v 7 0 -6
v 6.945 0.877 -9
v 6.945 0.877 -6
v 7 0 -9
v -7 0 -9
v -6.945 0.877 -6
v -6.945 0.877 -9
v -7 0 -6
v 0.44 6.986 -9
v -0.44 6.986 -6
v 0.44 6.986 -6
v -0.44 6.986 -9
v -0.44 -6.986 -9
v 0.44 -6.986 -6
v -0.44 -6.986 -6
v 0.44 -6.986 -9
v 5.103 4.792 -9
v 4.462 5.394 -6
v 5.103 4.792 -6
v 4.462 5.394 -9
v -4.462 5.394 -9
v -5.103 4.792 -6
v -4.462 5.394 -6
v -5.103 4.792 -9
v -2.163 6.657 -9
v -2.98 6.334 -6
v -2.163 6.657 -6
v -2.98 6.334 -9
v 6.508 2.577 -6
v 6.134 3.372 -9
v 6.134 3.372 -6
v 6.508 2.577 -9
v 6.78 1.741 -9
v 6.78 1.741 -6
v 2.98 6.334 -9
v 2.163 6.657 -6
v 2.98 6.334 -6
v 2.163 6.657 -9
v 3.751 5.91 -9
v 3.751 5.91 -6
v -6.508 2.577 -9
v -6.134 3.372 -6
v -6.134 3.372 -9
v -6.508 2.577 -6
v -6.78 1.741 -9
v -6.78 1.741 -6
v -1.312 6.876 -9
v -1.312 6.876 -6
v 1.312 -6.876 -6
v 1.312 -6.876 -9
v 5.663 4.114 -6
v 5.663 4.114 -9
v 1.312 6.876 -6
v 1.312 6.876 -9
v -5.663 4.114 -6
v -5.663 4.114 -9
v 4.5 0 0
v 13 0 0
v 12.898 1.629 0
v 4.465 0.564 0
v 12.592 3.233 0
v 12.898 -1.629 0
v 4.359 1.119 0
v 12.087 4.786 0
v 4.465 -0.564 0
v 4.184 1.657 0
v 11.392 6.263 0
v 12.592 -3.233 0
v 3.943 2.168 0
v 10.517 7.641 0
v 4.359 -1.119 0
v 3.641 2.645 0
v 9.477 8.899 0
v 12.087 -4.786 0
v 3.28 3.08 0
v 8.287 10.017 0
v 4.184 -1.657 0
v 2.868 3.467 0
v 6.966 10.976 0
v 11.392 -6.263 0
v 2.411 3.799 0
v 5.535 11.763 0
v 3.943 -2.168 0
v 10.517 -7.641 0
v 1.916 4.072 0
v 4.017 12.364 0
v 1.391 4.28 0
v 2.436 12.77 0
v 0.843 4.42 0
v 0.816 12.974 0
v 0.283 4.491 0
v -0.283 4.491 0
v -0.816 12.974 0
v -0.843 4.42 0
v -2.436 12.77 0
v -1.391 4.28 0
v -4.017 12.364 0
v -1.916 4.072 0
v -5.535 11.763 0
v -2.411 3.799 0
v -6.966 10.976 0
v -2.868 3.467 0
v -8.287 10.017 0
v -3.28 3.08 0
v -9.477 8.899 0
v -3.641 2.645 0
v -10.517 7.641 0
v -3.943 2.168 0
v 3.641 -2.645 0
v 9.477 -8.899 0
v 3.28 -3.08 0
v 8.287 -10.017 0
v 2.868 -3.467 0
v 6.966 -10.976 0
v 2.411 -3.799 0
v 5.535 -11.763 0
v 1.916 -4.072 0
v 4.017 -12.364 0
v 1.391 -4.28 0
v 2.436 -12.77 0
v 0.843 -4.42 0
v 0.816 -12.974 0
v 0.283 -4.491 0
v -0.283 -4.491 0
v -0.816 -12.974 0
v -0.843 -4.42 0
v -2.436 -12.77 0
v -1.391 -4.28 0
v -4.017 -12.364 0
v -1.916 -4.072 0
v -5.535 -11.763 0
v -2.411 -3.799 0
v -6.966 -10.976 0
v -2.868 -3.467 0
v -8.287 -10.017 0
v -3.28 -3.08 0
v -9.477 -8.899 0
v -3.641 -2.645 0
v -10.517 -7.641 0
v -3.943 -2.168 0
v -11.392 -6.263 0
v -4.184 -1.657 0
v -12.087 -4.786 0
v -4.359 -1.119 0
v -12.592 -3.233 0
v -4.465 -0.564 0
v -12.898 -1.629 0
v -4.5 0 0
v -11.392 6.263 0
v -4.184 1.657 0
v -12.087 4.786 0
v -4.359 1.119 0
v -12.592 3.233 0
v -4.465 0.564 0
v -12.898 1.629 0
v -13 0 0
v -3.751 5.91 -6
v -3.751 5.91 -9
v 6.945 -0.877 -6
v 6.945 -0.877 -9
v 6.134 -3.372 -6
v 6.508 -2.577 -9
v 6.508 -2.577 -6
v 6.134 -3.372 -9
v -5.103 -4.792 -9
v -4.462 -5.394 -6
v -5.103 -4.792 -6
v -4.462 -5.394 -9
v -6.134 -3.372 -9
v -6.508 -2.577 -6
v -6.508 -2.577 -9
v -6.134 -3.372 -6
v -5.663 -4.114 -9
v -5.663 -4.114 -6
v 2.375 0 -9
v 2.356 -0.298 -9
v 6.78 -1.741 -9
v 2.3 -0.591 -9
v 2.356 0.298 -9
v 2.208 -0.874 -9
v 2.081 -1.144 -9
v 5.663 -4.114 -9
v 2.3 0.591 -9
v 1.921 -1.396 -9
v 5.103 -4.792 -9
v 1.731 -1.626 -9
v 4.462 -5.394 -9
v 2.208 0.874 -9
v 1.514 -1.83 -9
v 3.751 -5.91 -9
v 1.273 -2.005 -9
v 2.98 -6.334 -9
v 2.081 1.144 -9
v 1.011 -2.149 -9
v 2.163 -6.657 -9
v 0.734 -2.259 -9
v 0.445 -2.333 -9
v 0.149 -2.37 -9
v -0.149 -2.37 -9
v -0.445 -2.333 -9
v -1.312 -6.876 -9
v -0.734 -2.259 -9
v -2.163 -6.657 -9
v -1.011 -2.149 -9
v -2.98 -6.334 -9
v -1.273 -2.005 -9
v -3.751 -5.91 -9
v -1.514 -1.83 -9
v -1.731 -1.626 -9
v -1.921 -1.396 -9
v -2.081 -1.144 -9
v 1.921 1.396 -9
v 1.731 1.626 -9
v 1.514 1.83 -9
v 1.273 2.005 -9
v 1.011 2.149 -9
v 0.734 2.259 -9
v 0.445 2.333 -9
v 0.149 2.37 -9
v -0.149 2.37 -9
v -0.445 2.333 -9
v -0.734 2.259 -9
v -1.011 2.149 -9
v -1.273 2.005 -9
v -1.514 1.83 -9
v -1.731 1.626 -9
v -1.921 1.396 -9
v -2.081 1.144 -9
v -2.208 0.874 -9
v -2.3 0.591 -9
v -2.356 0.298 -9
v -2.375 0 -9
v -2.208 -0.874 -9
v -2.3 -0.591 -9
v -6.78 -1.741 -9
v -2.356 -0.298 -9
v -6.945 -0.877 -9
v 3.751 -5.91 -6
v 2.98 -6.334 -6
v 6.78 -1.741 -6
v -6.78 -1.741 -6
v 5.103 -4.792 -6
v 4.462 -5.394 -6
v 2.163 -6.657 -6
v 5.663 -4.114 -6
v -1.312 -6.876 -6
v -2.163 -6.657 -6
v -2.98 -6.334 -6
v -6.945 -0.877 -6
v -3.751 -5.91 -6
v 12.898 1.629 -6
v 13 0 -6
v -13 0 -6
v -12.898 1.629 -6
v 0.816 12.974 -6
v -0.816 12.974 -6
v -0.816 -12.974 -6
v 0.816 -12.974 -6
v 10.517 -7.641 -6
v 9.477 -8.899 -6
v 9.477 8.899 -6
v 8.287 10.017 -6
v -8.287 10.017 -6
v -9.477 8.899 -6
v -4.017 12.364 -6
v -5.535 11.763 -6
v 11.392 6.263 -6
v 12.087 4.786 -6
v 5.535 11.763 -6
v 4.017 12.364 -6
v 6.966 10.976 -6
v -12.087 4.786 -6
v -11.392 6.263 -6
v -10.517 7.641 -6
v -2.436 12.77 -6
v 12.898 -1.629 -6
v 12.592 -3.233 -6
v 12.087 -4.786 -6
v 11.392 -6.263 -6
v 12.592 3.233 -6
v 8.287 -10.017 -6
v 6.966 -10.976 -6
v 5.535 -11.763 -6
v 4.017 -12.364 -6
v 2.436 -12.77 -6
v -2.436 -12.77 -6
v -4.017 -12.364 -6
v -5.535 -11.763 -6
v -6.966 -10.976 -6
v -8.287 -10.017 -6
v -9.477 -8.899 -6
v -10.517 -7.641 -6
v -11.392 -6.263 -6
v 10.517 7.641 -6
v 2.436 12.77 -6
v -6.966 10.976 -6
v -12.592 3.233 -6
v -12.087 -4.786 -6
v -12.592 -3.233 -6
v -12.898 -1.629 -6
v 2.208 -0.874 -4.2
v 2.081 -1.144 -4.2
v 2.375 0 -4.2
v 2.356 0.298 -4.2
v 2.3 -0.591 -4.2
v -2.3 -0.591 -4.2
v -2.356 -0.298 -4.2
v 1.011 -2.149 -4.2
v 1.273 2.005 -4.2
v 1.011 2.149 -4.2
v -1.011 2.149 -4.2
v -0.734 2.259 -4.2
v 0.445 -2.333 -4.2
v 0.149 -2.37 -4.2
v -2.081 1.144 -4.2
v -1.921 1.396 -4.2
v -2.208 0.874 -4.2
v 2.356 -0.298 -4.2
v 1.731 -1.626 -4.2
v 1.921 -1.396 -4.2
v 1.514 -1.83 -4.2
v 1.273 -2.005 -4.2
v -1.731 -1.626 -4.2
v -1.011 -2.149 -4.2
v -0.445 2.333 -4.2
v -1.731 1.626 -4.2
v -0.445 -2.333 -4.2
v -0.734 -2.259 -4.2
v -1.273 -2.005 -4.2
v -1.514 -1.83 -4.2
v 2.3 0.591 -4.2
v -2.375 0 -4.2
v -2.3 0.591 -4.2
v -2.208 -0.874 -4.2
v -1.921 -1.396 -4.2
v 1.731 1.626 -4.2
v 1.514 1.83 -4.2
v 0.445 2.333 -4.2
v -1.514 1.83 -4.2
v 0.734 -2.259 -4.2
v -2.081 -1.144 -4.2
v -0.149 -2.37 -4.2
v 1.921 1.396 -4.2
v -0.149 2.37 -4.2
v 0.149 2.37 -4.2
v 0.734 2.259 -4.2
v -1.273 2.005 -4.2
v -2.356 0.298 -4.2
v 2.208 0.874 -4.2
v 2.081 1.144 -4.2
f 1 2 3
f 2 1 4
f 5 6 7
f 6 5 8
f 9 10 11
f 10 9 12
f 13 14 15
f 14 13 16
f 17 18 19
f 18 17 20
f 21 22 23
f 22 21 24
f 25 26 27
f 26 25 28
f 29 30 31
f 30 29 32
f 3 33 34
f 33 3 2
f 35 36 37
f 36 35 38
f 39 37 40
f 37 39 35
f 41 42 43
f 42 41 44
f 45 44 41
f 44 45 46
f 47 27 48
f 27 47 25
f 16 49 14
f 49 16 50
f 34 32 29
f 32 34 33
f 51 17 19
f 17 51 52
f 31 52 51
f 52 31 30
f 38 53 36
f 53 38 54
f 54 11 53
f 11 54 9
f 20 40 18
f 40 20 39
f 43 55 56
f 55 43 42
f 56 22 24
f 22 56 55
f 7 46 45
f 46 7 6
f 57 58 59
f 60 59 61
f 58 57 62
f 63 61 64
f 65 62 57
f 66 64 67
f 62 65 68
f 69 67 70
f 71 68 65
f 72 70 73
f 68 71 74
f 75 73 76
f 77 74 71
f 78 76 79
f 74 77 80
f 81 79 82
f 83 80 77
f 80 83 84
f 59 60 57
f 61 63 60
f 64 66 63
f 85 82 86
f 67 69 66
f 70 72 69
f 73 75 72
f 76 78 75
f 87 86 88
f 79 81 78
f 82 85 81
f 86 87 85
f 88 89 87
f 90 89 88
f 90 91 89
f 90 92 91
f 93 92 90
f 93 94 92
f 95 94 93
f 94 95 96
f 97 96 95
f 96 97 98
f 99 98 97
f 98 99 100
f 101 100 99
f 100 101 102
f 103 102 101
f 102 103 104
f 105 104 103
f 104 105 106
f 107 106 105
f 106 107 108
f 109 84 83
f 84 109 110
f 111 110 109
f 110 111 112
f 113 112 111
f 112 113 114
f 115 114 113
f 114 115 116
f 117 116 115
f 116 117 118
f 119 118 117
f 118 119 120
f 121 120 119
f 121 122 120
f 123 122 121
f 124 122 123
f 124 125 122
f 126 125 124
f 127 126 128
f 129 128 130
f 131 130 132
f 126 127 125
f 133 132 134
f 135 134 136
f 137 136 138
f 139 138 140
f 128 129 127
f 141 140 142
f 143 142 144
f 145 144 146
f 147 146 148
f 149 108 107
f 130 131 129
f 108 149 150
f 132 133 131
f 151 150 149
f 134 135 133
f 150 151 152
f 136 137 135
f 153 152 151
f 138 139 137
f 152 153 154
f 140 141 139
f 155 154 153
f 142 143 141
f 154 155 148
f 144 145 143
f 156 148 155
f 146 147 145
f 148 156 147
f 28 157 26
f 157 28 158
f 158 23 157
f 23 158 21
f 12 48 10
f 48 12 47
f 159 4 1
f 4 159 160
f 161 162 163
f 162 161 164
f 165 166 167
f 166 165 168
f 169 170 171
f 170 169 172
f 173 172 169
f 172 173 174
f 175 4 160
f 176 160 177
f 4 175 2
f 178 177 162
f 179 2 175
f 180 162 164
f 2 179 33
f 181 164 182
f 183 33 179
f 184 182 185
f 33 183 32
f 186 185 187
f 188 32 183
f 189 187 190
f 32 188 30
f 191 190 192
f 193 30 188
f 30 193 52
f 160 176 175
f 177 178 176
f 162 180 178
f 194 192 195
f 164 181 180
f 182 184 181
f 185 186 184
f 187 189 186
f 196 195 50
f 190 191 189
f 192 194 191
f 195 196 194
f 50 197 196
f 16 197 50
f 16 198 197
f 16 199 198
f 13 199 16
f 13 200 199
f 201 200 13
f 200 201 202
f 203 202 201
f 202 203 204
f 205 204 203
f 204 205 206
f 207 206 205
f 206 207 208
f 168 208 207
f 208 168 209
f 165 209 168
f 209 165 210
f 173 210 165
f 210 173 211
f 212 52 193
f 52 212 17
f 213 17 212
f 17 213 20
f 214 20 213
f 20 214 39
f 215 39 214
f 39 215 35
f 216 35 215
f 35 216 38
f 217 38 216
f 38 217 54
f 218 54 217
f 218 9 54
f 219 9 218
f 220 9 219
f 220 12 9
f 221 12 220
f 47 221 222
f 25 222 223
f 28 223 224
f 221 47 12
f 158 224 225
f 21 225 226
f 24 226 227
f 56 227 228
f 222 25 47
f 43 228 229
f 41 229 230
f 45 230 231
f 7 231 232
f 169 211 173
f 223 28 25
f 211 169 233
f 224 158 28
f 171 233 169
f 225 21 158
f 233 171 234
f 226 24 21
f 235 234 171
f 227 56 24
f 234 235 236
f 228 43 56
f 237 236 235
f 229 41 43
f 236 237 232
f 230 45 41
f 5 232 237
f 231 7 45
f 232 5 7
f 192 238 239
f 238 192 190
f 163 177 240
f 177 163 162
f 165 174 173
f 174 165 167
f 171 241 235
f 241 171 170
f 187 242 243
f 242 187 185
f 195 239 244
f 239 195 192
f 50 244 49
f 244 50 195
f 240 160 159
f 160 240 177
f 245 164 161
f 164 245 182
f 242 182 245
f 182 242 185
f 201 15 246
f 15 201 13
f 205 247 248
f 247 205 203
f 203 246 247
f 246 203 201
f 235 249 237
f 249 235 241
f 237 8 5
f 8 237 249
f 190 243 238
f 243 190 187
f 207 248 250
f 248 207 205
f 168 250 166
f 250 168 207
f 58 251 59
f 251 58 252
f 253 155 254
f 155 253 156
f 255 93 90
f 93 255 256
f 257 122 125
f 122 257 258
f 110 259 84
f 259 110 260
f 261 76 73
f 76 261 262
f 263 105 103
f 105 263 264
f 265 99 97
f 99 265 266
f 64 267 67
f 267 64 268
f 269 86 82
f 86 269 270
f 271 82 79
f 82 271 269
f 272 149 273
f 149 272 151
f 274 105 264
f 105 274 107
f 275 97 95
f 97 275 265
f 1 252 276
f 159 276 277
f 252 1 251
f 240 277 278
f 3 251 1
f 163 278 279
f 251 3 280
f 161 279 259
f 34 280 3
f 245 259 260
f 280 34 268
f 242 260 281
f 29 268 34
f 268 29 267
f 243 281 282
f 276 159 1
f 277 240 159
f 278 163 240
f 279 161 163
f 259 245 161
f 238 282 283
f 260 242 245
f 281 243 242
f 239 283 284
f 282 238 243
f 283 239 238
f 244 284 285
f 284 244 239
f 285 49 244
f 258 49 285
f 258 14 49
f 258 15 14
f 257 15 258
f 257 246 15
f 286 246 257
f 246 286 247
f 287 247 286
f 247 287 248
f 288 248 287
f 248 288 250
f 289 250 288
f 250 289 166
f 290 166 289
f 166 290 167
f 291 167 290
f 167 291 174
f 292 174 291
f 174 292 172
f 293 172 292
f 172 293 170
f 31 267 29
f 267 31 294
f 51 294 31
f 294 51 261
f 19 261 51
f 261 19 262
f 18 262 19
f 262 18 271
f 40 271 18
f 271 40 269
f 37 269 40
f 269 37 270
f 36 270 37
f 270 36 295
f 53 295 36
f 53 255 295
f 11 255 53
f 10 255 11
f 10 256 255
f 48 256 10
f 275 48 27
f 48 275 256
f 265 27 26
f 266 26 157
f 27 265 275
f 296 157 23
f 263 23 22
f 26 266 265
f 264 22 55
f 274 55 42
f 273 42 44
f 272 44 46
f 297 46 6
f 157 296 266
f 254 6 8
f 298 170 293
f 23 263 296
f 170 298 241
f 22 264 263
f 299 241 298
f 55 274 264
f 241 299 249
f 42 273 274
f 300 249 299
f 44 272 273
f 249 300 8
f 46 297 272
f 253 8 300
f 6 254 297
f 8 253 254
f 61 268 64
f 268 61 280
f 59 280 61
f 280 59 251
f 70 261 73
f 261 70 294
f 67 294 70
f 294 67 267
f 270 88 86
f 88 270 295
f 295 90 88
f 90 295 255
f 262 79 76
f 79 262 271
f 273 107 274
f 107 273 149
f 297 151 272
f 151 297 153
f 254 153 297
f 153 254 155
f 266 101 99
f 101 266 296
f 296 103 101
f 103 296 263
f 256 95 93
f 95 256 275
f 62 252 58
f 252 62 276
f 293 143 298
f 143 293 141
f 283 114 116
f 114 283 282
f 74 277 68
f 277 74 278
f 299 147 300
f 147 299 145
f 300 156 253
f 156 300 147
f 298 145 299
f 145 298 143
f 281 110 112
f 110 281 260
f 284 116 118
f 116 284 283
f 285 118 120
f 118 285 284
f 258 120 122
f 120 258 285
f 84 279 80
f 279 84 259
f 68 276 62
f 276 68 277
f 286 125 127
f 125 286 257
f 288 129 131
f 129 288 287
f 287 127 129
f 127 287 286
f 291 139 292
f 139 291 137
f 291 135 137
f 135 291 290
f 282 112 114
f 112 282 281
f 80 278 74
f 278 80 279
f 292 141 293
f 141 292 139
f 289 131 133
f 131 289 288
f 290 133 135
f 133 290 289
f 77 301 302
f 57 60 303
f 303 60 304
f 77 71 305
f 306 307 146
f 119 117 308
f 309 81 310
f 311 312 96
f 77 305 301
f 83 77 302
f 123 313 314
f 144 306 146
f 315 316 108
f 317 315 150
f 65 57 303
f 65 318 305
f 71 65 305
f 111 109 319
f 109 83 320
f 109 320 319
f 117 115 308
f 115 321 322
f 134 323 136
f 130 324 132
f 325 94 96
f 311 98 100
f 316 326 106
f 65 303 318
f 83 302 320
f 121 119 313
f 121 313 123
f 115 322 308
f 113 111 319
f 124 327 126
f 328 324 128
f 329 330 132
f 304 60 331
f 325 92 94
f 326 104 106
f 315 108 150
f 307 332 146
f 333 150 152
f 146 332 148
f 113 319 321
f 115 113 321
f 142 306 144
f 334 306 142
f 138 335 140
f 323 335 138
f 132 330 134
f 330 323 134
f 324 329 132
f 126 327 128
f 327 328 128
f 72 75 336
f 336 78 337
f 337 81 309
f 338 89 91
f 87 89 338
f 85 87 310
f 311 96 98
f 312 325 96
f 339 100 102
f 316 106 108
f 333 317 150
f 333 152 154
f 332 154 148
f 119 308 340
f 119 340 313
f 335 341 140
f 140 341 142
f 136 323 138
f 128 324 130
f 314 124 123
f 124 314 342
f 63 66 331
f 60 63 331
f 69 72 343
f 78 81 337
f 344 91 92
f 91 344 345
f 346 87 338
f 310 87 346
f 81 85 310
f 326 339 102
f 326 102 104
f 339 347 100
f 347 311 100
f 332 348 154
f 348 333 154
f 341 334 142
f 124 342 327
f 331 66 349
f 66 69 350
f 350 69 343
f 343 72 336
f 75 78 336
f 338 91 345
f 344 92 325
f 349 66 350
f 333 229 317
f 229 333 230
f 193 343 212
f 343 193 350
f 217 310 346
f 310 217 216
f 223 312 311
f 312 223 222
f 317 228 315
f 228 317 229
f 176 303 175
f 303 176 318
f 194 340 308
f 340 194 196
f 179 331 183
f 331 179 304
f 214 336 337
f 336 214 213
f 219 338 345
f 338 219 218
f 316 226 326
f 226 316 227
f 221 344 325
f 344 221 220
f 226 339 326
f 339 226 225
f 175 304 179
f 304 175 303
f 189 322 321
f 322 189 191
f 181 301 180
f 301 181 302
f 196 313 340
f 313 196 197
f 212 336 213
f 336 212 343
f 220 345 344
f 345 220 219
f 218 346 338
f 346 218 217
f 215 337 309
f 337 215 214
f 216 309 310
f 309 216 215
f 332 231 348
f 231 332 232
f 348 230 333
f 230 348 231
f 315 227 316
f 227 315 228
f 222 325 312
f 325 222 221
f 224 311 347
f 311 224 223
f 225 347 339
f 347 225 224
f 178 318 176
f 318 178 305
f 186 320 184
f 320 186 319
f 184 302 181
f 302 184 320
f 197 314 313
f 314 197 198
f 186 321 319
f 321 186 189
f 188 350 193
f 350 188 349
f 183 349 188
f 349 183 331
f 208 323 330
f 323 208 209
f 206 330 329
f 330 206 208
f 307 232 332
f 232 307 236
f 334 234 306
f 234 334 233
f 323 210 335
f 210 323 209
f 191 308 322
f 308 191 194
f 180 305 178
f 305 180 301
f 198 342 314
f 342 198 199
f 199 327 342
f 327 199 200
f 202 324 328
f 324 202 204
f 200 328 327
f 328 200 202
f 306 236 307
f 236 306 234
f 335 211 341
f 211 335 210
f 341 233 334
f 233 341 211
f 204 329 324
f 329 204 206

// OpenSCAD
$fn = 50;


difference() {
	union() {
		translate(v = [0, 0, -9.0000000000]) {
			cylinder(h = 9, r = 7.0000000000);
		}
		translate(v = [0, 0, -6.0000000000]) {
			cylinder(h = 6, r = 13.0000000000);
		}
	}
	union() {
		translate(v = [0, 0, 0]) {
			rotate(a = [0, 0, 0]) {
				difference() {
					union() {
						#translate(v = [0, 0, -9.0000000000]) {
							cylinder(h = 9, r = 2.2500000000);
						}
						#translate(v = [0, 0, -4.2000000000]) {
							cylinder(h = 4.2000000000, r1 = 2.3750000000, r2 = 4.5000000000);
						}
						#translate(v = [0, 0, -9.0000000000]) {
							cylinder(h = 9, r = 2.3750000000);
						}
						#translate(v = [0, 0, -9.0000000000]) {
							cylinder(h = 9, r = 2.2500000000);
						}
					}
					union();
				}
			}
		}
	}
}
